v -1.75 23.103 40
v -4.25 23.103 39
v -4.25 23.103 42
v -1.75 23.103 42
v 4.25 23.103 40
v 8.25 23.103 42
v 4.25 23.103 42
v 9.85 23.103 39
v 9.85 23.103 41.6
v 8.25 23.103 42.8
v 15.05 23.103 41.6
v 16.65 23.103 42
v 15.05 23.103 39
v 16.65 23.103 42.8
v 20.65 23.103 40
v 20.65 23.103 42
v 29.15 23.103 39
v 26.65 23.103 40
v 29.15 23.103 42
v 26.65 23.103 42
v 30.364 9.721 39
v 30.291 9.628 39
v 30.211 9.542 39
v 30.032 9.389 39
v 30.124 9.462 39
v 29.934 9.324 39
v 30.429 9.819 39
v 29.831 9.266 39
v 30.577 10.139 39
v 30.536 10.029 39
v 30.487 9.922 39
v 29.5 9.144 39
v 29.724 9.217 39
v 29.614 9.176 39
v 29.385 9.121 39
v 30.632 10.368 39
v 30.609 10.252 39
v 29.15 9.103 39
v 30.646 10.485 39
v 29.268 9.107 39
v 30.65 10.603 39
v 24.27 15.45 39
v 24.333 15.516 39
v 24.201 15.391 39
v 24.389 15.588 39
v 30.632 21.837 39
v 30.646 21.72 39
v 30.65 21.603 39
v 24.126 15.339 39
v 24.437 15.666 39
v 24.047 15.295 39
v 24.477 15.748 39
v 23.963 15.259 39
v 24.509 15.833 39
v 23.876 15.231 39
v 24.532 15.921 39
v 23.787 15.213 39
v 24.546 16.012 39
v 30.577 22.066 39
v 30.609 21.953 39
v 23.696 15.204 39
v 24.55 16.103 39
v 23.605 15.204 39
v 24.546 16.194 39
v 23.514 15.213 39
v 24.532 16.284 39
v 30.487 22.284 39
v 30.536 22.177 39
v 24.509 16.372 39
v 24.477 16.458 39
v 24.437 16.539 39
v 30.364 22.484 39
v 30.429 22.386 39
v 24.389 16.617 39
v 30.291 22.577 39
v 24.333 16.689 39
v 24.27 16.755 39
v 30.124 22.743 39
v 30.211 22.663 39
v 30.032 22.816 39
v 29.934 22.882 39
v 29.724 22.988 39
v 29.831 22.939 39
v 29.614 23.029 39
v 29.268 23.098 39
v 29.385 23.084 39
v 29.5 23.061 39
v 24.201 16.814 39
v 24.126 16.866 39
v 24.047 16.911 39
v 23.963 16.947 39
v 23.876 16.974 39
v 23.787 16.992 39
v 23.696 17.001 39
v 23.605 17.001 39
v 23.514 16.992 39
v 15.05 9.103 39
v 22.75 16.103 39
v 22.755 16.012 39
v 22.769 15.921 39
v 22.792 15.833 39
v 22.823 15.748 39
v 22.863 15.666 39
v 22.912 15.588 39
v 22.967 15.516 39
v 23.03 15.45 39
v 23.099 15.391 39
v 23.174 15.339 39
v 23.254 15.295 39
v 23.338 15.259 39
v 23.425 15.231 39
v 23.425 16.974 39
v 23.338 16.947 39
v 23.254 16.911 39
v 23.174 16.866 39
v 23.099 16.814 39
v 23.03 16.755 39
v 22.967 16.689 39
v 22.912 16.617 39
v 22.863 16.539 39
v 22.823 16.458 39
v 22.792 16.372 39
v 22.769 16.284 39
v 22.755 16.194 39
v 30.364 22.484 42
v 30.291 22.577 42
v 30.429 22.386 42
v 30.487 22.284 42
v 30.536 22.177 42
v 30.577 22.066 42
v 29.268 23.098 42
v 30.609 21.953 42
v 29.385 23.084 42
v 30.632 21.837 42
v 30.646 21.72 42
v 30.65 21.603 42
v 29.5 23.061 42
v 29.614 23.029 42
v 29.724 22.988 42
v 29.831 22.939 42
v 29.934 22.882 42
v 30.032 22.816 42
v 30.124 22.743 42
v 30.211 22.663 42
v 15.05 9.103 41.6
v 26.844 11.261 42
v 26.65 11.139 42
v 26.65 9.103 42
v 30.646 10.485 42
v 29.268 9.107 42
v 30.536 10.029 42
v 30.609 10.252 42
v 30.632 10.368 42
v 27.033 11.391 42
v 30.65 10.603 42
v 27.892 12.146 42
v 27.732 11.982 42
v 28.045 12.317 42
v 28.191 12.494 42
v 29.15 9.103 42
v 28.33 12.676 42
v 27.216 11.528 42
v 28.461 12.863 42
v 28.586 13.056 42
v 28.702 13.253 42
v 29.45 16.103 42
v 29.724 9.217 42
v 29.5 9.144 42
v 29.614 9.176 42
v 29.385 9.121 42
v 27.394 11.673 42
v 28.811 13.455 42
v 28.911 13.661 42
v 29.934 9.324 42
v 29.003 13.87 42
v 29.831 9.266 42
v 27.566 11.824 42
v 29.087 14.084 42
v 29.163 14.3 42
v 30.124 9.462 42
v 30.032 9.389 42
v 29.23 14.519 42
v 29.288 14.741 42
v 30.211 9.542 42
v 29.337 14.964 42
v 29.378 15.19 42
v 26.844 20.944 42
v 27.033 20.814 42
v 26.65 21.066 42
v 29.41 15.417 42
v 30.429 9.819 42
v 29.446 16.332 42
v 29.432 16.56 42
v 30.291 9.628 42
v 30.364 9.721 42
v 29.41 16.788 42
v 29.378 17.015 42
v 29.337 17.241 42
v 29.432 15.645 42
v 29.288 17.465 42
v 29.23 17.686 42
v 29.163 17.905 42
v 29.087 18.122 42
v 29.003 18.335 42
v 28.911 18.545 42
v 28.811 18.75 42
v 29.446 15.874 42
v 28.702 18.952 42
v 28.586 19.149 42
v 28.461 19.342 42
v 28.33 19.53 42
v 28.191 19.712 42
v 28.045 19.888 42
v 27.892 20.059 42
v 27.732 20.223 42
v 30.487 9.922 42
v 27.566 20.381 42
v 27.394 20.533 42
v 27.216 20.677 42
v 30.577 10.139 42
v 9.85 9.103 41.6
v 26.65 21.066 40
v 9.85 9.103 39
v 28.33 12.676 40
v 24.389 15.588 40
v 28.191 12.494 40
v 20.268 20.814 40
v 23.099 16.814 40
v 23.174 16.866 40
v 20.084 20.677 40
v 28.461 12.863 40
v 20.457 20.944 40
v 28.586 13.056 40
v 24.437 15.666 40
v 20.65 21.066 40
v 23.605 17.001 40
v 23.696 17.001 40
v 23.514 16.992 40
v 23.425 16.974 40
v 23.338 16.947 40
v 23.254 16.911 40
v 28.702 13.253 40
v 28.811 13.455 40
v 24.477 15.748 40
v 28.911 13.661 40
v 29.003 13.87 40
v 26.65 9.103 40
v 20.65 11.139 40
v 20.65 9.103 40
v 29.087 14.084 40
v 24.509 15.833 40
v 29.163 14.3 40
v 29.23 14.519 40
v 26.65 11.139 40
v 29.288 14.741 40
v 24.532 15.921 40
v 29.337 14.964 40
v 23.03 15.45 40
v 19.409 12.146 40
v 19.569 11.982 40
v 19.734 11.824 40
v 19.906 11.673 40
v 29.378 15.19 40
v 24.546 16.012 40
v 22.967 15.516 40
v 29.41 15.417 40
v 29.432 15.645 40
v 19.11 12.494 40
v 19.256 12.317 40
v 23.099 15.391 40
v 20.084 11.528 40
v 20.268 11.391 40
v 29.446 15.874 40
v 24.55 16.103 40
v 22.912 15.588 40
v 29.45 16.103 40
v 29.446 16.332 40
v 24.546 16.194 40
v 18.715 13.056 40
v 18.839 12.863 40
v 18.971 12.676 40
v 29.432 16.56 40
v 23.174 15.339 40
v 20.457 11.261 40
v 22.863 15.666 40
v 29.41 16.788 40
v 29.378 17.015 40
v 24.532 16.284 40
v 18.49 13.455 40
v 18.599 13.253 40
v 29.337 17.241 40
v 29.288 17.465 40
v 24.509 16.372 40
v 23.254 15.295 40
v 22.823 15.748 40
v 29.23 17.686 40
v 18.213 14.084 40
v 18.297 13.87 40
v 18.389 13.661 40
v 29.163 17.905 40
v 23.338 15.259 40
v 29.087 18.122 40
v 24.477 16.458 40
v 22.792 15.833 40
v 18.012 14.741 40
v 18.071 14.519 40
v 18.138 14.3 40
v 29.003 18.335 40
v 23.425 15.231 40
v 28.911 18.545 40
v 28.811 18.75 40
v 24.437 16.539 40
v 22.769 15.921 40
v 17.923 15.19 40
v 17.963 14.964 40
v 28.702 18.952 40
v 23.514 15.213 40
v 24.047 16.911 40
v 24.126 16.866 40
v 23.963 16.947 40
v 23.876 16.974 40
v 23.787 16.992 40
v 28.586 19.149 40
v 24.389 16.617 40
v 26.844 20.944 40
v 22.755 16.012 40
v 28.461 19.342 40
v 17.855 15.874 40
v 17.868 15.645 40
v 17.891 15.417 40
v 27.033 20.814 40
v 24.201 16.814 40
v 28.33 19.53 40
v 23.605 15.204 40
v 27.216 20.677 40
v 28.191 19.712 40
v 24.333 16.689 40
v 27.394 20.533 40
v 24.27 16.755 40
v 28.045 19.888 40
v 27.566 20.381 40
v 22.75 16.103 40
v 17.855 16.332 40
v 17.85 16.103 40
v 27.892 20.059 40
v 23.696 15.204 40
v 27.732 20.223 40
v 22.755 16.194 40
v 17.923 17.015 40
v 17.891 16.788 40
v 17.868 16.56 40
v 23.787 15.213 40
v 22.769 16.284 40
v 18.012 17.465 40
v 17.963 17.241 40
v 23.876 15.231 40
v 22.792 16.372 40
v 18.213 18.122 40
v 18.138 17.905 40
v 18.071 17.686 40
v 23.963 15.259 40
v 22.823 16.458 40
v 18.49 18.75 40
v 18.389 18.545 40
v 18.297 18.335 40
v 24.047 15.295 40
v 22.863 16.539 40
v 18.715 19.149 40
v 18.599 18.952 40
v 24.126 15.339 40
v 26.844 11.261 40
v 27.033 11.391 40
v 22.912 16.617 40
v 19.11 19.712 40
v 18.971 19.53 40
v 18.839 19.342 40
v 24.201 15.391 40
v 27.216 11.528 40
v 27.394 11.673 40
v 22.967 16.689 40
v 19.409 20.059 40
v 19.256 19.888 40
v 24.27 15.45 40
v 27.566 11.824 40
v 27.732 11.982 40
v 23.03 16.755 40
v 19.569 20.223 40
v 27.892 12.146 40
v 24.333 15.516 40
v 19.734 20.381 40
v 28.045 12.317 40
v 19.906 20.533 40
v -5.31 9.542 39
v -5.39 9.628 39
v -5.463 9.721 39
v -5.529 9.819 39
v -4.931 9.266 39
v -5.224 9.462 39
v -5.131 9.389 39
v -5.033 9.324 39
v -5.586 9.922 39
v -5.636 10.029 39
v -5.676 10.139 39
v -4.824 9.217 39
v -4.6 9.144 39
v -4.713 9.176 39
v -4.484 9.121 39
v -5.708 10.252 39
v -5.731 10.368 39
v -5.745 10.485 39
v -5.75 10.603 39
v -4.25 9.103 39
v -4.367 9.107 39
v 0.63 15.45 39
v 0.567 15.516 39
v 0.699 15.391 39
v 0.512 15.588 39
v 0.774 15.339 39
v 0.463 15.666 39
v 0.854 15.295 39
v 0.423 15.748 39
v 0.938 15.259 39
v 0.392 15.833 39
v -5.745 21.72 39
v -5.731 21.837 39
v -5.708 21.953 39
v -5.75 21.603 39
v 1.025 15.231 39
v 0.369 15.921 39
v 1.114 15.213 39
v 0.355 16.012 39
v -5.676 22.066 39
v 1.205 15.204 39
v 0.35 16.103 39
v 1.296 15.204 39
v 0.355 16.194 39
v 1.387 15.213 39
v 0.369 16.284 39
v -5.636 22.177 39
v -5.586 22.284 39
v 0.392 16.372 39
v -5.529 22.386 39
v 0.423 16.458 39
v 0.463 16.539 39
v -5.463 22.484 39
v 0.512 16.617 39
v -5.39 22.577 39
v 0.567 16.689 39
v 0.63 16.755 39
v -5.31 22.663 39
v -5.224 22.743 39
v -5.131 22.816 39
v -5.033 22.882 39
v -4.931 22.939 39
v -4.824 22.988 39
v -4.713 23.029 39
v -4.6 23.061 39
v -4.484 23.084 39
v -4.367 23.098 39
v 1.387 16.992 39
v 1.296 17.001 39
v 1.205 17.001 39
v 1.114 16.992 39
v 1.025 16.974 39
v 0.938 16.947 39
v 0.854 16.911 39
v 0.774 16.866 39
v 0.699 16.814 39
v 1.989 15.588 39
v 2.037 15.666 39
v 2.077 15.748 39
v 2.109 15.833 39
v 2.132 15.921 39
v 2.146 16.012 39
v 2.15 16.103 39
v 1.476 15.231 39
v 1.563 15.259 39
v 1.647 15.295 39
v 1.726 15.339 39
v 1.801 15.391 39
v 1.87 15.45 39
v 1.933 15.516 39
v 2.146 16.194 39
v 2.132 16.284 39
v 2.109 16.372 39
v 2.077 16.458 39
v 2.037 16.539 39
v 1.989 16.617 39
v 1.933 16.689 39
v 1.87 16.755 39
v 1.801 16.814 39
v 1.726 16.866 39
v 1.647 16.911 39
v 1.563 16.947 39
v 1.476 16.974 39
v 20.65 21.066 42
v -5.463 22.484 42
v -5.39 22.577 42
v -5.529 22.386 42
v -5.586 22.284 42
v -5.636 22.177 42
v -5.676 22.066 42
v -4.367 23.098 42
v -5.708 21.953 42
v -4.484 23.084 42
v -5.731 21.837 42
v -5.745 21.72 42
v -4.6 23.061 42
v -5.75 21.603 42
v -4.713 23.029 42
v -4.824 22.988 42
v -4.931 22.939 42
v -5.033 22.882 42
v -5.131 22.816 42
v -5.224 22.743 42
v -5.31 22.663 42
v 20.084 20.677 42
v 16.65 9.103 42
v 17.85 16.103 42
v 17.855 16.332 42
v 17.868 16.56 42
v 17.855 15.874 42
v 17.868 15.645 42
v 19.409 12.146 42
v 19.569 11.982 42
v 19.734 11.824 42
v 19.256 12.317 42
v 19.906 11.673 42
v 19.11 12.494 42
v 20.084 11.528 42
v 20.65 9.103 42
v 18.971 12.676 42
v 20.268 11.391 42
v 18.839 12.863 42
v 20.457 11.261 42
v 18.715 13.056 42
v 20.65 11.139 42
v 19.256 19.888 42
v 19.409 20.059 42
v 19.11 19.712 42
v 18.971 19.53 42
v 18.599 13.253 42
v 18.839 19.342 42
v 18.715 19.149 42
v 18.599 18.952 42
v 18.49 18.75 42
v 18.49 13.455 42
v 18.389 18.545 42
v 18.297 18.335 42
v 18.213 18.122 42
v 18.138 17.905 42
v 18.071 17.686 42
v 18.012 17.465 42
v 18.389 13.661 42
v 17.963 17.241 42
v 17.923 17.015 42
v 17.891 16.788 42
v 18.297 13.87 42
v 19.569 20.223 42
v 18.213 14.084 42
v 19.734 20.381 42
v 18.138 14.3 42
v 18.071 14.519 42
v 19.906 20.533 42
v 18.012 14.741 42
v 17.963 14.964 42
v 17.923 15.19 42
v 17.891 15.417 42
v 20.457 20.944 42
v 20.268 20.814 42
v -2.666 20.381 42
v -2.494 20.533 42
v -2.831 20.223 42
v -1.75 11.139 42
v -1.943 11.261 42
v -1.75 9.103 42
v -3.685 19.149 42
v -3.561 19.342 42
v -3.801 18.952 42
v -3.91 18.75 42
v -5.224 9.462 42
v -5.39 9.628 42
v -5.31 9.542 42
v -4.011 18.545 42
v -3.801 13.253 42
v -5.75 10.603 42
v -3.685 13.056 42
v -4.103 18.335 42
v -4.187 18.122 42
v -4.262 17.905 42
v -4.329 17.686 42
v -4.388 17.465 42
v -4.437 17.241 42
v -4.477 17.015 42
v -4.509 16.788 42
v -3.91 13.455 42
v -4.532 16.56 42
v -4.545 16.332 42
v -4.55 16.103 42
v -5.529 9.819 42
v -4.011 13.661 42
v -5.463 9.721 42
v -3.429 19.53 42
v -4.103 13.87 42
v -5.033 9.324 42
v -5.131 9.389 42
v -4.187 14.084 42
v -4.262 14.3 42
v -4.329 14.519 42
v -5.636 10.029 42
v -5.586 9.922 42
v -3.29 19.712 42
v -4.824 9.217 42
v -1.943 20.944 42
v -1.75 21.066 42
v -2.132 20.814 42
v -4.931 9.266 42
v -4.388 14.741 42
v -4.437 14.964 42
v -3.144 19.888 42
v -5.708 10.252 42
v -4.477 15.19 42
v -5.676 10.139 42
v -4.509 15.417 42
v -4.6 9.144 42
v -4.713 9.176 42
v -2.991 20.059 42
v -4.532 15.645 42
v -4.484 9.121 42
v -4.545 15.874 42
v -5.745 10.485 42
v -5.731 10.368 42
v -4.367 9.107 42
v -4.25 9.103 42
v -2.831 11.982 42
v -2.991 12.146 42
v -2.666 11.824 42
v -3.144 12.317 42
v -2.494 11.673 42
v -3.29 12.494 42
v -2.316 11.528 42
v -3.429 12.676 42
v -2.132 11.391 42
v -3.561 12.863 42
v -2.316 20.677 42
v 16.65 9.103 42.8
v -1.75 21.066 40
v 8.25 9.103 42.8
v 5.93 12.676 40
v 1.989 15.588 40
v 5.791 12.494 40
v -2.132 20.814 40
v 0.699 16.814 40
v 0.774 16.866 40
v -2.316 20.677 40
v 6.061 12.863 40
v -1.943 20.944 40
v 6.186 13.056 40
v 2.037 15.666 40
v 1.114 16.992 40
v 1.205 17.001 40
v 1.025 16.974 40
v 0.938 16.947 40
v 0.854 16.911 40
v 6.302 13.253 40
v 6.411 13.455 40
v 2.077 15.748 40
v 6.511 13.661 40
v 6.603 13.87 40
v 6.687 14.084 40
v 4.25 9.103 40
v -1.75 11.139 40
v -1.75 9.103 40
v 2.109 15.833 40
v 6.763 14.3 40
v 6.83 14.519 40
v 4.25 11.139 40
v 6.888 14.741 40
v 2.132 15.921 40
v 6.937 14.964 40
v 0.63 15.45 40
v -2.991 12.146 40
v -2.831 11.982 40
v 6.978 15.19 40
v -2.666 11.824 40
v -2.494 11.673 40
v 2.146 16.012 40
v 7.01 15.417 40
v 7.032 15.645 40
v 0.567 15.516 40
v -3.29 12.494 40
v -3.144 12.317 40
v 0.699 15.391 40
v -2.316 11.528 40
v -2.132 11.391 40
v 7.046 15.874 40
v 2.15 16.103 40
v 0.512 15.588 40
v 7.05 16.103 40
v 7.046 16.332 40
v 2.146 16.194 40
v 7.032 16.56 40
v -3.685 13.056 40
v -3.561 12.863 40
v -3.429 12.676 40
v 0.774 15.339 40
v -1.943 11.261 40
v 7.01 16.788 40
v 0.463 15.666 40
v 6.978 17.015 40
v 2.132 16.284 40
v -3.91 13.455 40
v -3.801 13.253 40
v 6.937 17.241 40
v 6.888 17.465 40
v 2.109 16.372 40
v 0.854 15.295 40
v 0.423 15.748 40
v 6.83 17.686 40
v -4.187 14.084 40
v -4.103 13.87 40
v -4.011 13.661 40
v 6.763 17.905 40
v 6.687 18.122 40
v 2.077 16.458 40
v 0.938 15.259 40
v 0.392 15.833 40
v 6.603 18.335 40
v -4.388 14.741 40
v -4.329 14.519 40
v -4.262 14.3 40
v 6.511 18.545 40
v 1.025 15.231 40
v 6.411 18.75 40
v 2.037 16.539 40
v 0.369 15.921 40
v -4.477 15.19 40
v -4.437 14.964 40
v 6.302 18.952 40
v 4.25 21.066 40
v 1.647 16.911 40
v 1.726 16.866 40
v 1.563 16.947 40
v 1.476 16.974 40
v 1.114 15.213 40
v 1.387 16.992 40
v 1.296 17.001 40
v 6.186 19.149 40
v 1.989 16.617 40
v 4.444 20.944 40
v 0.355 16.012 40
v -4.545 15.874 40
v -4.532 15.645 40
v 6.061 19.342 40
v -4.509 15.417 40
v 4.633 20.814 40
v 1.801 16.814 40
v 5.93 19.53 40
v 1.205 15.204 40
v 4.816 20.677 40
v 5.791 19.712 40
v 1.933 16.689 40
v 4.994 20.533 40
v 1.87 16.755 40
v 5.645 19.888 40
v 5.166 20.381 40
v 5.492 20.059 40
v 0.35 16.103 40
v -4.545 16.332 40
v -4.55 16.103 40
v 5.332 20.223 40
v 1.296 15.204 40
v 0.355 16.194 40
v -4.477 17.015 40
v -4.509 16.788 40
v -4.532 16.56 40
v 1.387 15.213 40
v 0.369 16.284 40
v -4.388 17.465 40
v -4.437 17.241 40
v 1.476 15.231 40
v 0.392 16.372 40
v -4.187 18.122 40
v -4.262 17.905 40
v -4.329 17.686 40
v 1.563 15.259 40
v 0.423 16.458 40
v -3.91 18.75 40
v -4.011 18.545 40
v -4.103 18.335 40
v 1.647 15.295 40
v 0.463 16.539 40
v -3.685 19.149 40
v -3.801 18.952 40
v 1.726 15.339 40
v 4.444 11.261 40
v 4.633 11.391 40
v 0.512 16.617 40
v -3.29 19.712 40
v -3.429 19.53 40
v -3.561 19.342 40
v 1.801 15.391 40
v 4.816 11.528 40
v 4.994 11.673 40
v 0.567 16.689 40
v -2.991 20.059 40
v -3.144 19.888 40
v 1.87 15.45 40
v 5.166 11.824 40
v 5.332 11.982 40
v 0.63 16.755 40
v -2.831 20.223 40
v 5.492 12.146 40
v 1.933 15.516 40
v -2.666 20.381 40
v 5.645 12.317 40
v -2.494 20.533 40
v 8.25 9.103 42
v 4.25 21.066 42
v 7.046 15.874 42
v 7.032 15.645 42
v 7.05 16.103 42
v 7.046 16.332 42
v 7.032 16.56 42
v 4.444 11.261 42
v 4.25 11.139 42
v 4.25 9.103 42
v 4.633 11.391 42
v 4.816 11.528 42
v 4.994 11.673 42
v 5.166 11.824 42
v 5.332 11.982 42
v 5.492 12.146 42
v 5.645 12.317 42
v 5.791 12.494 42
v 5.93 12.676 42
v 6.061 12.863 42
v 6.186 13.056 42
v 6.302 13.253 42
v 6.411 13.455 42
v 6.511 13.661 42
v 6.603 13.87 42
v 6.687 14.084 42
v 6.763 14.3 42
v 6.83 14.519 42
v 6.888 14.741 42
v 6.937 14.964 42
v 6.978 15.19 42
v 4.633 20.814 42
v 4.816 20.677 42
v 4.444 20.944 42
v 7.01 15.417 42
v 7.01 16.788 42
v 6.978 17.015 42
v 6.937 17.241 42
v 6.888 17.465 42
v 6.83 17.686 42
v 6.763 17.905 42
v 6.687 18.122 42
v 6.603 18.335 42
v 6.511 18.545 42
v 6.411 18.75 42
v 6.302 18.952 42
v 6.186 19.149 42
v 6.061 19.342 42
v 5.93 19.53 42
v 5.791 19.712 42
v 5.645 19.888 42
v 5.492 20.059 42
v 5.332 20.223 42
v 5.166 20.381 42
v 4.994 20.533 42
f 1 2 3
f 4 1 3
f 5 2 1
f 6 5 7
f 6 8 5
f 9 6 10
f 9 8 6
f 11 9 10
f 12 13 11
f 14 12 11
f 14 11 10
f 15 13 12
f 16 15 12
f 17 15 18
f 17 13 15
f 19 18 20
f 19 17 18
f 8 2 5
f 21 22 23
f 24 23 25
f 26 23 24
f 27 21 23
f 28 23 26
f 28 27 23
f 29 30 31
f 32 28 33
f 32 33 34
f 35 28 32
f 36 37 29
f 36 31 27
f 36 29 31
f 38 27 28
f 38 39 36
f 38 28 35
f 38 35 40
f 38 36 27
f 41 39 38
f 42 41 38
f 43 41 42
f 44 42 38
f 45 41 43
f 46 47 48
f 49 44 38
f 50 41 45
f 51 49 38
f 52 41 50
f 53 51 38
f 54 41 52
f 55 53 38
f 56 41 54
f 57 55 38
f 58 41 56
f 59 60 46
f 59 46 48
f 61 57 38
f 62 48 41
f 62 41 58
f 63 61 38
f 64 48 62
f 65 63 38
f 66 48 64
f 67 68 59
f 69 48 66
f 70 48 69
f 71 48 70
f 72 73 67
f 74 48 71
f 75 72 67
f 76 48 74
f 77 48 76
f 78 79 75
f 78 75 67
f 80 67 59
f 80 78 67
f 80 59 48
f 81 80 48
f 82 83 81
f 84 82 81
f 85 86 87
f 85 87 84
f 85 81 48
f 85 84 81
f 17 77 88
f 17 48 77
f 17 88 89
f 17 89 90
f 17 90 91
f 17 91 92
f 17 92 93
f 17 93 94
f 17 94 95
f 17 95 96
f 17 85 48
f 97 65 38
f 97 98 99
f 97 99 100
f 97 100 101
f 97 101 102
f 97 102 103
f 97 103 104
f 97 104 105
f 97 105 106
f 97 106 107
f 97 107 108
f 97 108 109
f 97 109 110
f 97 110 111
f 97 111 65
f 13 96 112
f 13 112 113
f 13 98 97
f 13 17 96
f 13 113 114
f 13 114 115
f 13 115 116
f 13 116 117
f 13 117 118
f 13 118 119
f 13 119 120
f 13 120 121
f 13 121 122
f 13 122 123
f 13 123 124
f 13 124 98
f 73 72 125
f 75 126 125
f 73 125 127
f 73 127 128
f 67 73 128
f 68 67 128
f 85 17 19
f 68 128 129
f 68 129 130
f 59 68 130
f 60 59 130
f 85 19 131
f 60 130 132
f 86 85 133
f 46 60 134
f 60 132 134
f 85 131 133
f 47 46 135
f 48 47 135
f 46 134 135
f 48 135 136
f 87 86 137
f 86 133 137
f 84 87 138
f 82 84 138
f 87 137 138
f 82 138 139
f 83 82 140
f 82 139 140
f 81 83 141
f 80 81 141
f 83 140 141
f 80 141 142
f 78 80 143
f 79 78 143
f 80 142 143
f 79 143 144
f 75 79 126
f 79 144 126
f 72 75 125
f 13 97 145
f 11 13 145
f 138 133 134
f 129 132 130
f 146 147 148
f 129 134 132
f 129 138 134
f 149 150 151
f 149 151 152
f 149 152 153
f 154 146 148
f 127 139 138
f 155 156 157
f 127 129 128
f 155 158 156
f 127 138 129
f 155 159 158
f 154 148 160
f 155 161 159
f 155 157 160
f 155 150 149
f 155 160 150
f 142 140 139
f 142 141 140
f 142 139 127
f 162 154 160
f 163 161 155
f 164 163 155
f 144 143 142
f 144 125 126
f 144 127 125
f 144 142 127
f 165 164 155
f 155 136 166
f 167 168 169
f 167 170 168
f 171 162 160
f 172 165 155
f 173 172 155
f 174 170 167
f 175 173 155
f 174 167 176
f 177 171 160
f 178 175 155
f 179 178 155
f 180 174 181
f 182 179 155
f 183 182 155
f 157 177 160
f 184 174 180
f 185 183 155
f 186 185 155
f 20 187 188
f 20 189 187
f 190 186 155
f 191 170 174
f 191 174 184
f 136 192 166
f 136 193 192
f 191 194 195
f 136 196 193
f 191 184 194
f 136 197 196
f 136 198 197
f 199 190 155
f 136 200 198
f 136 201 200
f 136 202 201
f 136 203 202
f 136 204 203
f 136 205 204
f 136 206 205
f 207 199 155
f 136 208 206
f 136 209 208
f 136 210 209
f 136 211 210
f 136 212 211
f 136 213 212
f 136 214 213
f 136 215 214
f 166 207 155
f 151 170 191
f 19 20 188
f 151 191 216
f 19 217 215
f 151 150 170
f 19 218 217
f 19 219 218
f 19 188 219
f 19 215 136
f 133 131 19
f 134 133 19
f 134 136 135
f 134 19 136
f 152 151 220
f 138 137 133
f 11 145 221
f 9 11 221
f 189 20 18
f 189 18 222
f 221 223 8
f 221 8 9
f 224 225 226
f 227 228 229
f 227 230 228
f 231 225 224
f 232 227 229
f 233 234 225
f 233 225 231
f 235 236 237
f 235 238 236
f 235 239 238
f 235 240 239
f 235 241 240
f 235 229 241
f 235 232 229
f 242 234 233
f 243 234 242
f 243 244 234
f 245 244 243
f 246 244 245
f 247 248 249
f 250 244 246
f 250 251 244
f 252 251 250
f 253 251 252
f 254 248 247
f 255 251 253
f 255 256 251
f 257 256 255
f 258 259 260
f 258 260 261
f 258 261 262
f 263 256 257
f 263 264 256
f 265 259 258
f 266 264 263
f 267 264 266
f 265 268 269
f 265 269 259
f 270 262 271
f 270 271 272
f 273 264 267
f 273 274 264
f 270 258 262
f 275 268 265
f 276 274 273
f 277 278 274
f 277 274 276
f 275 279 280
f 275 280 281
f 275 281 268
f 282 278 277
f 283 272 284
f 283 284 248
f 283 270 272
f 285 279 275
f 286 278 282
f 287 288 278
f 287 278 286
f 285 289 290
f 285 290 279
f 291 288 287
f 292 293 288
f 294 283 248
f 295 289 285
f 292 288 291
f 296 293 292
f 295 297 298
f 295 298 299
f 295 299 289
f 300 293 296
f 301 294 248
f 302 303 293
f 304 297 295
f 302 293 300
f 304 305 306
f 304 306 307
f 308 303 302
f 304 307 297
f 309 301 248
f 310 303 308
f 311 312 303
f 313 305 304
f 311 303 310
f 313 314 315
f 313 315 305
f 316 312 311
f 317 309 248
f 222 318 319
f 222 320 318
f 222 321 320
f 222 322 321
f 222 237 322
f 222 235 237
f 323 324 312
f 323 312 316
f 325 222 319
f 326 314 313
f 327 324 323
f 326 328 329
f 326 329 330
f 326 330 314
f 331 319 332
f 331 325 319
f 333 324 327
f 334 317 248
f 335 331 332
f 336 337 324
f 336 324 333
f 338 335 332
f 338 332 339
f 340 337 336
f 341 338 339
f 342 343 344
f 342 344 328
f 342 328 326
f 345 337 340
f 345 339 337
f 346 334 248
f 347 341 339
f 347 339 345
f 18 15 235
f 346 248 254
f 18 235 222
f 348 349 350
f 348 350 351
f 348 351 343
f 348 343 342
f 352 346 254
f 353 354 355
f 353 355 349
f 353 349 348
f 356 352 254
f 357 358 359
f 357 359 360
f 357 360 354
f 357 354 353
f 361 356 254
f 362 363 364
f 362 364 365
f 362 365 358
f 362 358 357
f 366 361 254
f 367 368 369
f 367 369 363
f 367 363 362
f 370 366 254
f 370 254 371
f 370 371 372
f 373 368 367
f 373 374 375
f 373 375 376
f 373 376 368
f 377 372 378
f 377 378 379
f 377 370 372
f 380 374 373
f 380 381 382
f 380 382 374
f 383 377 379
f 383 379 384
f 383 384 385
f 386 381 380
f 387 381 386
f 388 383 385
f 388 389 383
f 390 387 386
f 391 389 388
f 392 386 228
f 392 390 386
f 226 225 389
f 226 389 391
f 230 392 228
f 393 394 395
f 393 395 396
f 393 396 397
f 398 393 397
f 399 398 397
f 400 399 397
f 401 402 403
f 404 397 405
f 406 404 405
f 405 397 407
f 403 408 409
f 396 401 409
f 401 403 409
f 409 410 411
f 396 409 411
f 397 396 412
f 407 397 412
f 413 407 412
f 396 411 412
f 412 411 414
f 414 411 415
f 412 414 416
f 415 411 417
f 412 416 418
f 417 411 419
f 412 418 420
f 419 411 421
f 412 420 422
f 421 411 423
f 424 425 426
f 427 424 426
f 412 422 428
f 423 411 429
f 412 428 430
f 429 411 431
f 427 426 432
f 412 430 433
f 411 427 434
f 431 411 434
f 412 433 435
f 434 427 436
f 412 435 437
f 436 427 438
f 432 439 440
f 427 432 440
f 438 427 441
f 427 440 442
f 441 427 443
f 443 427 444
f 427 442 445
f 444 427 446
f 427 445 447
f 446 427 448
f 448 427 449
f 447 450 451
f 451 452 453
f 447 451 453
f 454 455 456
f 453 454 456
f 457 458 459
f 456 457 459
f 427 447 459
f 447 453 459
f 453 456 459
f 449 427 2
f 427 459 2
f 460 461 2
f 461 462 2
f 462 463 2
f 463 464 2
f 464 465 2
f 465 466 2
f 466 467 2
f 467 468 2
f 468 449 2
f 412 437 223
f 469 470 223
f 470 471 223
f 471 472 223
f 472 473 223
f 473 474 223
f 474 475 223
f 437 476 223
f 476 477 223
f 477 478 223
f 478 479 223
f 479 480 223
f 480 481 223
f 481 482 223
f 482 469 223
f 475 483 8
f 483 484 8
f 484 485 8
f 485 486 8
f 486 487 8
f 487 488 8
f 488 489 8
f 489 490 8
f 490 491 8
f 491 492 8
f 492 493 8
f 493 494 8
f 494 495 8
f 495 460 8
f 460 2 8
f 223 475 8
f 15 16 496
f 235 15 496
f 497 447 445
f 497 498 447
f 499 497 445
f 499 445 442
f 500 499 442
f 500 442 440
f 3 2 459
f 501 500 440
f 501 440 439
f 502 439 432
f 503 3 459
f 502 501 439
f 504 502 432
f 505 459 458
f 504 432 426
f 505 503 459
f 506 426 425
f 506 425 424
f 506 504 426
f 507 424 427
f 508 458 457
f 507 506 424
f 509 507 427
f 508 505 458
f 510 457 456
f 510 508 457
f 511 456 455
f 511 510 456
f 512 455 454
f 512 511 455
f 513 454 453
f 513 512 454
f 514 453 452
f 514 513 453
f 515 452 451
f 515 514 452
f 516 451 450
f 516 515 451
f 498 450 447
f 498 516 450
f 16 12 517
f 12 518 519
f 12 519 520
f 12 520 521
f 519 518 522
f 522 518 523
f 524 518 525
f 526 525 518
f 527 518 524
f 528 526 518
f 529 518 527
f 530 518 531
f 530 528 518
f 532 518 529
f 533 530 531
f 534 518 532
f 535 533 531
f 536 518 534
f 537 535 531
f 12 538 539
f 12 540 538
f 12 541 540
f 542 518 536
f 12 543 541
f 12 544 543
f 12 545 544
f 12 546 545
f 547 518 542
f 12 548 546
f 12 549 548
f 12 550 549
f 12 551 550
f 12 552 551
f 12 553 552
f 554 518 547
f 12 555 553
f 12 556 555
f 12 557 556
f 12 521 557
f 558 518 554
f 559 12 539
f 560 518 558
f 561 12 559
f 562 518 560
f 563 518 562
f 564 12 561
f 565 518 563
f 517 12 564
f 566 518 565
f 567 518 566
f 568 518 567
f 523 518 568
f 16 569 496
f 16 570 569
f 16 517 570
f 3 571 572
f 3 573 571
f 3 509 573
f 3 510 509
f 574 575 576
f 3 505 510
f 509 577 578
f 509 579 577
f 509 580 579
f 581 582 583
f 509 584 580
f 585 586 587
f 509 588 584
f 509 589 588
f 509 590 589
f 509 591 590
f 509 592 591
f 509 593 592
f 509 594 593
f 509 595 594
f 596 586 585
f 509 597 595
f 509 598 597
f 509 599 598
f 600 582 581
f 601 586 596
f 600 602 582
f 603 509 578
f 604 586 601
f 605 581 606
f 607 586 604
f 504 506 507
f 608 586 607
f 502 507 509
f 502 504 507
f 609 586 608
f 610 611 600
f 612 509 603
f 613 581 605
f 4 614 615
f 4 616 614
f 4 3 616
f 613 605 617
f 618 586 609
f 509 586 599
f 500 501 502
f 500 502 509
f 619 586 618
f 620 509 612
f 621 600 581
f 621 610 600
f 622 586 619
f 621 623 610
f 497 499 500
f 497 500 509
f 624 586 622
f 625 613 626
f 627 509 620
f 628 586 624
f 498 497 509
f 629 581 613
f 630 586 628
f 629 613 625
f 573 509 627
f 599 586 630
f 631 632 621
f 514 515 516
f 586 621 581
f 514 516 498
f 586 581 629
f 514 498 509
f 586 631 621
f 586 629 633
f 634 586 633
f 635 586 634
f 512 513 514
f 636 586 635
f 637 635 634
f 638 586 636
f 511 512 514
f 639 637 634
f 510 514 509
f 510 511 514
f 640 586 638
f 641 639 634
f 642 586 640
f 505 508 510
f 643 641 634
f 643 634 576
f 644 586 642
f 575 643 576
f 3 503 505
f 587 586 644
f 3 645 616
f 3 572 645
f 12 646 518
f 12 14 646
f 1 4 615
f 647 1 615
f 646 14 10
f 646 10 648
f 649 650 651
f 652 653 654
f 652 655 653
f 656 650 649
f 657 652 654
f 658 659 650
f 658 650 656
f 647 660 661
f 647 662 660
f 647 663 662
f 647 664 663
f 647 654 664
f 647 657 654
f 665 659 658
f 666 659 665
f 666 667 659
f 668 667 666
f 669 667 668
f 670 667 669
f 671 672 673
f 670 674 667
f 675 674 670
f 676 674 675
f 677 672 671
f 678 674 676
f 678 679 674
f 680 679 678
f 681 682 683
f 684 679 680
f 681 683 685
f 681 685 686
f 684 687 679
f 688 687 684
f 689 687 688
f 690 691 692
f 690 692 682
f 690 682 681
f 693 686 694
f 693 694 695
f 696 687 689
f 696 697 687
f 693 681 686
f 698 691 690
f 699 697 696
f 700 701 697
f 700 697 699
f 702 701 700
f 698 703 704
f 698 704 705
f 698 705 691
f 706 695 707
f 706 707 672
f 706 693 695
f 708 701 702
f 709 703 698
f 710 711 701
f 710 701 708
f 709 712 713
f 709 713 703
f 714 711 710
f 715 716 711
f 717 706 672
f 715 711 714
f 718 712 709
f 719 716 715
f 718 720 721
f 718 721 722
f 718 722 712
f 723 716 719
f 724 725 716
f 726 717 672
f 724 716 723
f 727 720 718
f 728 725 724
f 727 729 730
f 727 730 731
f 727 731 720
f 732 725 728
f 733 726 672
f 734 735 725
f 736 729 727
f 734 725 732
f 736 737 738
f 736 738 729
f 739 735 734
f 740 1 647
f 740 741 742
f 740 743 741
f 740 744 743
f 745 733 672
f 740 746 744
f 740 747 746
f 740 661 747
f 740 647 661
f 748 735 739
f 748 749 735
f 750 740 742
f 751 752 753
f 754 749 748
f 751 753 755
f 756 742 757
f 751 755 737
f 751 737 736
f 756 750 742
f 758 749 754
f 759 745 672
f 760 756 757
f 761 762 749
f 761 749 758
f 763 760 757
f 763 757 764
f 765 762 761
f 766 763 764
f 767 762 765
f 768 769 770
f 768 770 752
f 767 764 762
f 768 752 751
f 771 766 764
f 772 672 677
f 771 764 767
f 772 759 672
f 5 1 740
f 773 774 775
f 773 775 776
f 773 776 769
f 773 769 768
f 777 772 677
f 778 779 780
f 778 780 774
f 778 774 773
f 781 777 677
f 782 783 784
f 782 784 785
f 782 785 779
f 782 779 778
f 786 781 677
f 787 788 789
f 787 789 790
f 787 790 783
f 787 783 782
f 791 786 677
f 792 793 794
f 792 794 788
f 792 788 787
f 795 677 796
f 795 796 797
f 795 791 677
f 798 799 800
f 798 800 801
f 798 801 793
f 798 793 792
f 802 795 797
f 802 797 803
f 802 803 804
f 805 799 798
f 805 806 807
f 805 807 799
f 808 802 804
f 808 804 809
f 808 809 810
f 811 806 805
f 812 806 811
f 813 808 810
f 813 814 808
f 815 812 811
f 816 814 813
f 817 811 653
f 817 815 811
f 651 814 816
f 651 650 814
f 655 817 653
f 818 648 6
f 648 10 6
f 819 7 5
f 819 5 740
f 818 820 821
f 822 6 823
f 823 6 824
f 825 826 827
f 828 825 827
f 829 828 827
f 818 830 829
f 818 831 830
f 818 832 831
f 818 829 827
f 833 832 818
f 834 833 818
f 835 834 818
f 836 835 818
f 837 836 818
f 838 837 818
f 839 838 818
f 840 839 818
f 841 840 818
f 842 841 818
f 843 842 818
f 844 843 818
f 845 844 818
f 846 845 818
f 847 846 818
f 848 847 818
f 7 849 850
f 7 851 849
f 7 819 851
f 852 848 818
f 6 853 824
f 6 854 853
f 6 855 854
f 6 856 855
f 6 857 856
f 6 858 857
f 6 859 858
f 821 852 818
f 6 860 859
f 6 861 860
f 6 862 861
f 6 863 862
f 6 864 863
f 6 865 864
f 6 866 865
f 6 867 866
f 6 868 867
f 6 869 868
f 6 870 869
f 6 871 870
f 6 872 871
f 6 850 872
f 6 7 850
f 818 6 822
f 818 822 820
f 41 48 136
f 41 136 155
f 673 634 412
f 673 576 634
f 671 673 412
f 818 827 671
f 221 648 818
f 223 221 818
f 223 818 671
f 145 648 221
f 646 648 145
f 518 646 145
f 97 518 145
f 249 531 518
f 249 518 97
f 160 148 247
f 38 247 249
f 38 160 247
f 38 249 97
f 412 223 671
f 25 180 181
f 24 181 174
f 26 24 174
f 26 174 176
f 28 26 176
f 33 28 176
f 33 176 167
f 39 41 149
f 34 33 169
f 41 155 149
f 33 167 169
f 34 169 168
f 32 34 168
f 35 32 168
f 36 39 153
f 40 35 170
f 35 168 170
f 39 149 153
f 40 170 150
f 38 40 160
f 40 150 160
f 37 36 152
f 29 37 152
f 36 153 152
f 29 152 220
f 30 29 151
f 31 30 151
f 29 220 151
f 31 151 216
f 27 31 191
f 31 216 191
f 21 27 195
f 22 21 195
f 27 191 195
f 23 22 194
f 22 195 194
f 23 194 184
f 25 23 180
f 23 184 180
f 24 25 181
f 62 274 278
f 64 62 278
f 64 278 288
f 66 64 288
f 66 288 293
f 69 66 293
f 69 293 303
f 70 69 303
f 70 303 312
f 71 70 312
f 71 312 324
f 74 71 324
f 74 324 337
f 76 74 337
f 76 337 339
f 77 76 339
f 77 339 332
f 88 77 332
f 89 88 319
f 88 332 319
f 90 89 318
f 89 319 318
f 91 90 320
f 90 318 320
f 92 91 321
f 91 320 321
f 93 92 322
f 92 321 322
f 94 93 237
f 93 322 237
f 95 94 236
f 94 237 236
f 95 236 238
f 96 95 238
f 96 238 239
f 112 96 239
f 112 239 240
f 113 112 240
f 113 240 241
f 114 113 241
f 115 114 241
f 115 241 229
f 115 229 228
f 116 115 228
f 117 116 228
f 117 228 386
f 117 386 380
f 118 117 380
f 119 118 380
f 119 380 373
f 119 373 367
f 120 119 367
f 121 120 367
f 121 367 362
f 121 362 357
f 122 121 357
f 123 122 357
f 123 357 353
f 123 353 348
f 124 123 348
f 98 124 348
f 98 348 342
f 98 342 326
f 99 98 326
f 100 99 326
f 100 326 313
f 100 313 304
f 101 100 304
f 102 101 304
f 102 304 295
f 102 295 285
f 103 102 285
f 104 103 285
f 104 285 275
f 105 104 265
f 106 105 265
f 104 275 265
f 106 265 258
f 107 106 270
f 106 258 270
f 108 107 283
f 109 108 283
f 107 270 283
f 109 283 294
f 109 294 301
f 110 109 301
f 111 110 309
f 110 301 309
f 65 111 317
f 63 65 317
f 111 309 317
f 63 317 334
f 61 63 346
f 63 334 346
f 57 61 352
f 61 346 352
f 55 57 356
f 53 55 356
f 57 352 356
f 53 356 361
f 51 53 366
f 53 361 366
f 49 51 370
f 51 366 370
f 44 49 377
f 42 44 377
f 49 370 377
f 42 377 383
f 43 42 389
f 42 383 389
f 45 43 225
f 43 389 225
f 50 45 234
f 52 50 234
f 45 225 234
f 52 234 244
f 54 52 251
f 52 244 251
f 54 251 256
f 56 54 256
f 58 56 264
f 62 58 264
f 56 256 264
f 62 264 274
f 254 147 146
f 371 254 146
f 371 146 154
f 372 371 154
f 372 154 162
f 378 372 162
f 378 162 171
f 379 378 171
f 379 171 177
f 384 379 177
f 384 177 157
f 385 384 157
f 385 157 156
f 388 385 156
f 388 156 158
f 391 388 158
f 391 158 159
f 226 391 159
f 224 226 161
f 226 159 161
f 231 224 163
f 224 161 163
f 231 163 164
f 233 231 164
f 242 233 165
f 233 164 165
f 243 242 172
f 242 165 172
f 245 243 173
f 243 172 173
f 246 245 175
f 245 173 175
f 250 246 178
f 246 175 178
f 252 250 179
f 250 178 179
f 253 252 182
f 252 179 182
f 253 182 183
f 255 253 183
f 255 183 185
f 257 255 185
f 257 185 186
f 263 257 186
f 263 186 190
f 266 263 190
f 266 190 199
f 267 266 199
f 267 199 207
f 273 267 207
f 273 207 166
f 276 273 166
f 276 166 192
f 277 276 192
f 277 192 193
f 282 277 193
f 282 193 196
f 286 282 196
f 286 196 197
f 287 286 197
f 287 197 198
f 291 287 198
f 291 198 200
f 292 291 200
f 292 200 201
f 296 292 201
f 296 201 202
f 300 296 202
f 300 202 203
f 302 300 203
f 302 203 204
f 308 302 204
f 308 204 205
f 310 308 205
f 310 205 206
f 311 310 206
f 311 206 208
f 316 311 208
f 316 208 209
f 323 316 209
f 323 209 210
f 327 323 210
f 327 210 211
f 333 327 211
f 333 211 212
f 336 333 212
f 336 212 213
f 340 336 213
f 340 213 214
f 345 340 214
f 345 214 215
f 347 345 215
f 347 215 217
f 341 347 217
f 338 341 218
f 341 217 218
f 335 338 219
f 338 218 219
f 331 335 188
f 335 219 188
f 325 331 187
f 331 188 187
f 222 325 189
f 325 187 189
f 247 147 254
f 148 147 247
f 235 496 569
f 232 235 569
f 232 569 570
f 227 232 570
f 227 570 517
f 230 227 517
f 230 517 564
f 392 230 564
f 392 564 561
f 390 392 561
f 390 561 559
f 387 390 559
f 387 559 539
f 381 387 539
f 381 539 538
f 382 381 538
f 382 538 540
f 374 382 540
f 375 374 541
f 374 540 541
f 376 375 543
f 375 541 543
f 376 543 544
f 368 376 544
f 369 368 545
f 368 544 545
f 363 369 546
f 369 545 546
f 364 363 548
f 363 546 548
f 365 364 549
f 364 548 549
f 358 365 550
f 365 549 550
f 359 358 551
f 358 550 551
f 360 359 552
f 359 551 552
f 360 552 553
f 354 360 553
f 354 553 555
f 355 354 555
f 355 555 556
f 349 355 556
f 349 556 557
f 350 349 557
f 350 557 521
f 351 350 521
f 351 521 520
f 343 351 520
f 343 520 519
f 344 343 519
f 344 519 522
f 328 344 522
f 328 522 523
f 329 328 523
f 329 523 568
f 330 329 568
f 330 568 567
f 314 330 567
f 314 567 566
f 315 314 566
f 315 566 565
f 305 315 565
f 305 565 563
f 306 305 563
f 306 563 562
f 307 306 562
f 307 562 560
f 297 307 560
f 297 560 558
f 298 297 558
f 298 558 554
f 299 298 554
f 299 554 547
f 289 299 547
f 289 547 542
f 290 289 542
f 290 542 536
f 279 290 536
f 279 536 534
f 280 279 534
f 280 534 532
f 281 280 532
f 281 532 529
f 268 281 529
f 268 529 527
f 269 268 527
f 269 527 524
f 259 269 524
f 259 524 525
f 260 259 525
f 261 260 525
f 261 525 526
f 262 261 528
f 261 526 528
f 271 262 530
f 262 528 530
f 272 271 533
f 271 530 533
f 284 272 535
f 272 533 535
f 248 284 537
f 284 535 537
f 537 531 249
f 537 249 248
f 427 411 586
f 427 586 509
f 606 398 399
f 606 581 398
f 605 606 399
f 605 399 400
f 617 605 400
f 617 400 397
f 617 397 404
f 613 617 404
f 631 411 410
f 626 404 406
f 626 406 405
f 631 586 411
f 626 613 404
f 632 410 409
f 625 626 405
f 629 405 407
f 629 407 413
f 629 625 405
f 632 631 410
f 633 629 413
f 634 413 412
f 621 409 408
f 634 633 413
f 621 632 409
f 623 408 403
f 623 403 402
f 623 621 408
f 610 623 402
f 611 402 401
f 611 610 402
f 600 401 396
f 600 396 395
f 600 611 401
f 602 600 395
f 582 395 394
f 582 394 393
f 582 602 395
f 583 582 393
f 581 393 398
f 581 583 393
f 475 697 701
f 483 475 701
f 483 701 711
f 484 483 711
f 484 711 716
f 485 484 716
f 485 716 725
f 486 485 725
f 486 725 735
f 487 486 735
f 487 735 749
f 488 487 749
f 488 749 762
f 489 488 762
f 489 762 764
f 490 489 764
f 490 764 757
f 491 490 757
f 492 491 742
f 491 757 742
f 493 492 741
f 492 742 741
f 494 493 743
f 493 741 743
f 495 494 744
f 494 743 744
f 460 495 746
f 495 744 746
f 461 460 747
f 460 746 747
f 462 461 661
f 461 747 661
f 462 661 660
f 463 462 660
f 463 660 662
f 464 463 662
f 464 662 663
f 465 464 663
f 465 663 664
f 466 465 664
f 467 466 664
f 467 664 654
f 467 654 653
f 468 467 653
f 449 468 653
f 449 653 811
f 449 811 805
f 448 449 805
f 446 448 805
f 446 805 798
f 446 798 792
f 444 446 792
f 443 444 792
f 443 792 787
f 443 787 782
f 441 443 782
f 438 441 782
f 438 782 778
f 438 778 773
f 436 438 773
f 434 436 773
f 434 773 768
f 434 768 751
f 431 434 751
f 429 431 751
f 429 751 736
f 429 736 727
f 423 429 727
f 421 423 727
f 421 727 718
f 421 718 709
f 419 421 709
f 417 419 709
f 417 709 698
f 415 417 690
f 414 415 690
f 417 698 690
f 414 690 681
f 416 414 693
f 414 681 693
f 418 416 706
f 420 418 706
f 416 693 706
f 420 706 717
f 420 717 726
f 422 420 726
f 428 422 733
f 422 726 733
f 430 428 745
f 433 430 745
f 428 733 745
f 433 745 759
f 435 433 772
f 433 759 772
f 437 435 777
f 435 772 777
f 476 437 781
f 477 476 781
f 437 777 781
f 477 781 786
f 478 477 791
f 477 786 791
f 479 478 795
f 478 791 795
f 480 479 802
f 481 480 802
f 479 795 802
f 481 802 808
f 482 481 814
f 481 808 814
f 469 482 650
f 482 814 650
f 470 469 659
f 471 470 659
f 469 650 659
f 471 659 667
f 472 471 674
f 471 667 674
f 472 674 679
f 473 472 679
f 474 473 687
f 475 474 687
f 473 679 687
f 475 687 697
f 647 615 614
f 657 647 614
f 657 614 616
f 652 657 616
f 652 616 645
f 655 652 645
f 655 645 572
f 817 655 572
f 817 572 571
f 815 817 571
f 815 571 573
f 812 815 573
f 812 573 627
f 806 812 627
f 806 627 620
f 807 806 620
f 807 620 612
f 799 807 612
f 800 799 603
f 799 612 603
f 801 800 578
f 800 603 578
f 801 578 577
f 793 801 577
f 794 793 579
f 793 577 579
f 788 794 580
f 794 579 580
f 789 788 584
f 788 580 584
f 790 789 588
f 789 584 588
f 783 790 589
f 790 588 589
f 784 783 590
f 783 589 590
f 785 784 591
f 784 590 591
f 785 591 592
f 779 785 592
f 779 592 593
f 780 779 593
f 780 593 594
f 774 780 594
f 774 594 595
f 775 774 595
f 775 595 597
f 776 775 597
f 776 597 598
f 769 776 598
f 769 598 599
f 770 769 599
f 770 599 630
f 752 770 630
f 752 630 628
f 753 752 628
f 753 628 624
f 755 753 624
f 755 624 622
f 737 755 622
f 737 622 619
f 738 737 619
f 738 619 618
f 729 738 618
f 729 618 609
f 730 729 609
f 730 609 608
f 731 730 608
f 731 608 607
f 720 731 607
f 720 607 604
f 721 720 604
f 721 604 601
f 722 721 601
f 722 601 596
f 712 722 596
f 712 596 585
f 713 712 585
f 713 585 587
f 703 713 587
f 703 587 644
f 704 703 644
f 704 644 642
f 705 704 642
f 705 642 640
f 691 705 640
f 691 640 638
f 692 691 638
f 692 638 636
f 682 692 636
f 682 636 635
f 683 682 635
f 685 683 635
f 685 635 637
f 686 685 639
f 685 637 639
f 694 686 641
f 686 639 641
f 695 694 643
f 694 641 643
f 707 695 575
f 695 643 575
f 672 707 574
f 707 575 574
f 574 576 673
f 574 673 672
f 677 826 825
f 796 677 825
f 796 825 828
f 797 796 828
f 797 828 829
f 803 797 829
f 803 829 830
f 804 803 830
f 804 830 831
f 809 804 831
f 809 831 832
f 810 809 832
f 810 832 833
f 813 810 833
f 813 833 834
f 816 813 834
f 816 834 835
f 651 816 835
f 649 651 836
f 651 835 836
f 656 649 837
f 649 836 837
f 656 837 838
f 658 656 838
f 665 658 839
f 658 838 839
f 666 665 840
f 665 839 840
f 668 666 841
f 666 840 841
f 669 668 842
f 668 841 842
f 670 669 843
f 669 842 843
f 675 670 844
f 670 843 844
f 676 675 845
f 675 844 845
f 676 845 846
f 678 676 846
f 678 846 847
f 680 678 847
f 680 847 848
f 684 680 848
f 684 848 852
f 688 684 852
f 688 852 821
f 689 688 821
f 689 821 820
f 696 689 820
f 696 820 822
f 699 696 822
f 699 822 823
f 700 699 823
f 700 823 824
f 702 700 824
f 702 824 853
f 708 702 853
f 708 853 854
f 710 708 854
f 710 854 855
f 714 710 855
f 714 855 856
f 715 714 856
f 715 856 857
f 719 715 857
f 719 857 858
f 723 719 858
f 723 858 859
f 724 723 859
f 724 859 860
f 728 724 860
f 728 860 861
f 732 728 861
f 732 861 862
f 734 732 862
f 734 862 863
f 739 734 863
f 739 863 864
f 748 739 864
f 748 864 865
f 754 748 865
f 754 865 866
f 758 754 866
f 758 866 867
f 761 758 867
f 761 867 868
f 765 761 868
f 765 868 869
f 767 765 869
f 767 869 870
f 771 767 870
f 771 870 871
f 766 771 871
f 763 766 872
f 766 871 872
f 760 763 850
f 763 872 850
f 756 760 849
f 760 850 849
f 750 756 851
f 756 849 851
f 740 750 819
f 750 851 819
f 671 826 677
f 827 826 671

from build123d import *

# Parameters (mm, degrees)
PAD_DEPTH       = 7
SKETCH006_W     = 14
SKETCH006_H     = 14
PAD002_DEPTH    = 3
POCKET004_DEPTH = 2
SKETCH008_R     = 0.9
POCKET005_DEPTH = 1.001
FILLET001_R     = 1.5


with BuildPart() as clamp_unit001:
    # Sketch → Pad (new body, symmetric)
    with BuildSketch(Plane.XZ):
        Polygon((-2.6, 3.8), (4.2, 3.8), (4.2, 0), (2.6, 0), (2.6, 2.6), (-2.6, 2.6), (-2.6, 0), (-4.2, 0), (-4.2, 3.8), align=None)
    extrude(amount=PAD_DEPTH, both=True)


with BuildPart() as pushpin_unit002:
    # Sketch006 → Pad002 (new body)
    with BuildSketch(Plane.XY):
        Rectangle(SKETCH006_W, SKETCH006_H)
    extrude(amount=PAD002_DEPTH)

    # Sketch007 → Pocket004 (cut)
    with BuildSketch(Plane.XY.offset(3)):
        with BuildLine():
            Line((-3, 7), (-3, 4.963869))
            ThreePointArc((-3, 4.963869), (-5.8, 0), (-3, -4.963869))
            Line((-3, -7), (-3, -4.963869))
            Line((3, -7), (-3, -7))
            Line((3, -4.963869), (3, -7))
            ThreePointArc((3, -4.963869), (5.8, 0), (3, 4.963869))
            Line((3, 7), (3, 4.963869))
            Line((-3, 7), (3, 7))
        make_face()
    extrude(amount=-POCKET004_DEPTH, mode=Mode.SUBTRACT)

    # Sketch008 → Pocket005 (cut, through all)
    with BuildSketch(Plane.XY.offset(1)):
        Circle(SKETCH008_R)
    extrude(amount=-POCKET005_DEPTH, mode=Mode.SUBTRACT)


with BuildPart() as pushpin_unit002_1:
    # Clone placement: moved
    add(pushpin_unit002.part.moved(Location((-11.2, 0, 0))))


with BuildPart() as pushpin_unit003:
    # Clone004 base: copy of pushpin-unit002
    add(pushpin_unit002_1.part)


with BuildPart() as pushpin_unit003_1:
    # Clone004 placement: moved
    add(pushpin_unit003.part.moved(Location((22.4, 0, 0))))


with BuildPart() as clone_of_wire_holder_double:
    # Fusion001 base: copy of pushpin-unit002
    add(pushpin_unit002_1.part)

    # Fusion001: union clamp-unit001, pushpin-unit003
    add(clamp_unit001.part)
    add(pushpin_unit003_1.part)

    # Fillet001
    fillet001_edges = [clone_of_wire_holder_double.edges().sort_by_distance(p)[0] for p in [
        (-18.2, 7, 1.5),
        (18.2, 7, 1.5),
        (-18.2, -7, 1.5),
        (18.2, -7, 1.5),
    ]]
    fillet(fillet001_edges, radius=FILLET001_R)


with BuildPart() as clone_of_wire_holder_double_1:
    # Clone007 placement: moved
    add(clone_of_wire_holder_double.part.moved(Location((35.472096, 29.030871, 0))))


with BuildPart() as clone_of_wire_holder_double_2:
    # Clone001004 placement: moved
    add(clone_of_wire_holder_double_1.part.moved(Location((-23.02183, -12.928266, 39))))


solid = clone_of_wire_holder_double_2.part
